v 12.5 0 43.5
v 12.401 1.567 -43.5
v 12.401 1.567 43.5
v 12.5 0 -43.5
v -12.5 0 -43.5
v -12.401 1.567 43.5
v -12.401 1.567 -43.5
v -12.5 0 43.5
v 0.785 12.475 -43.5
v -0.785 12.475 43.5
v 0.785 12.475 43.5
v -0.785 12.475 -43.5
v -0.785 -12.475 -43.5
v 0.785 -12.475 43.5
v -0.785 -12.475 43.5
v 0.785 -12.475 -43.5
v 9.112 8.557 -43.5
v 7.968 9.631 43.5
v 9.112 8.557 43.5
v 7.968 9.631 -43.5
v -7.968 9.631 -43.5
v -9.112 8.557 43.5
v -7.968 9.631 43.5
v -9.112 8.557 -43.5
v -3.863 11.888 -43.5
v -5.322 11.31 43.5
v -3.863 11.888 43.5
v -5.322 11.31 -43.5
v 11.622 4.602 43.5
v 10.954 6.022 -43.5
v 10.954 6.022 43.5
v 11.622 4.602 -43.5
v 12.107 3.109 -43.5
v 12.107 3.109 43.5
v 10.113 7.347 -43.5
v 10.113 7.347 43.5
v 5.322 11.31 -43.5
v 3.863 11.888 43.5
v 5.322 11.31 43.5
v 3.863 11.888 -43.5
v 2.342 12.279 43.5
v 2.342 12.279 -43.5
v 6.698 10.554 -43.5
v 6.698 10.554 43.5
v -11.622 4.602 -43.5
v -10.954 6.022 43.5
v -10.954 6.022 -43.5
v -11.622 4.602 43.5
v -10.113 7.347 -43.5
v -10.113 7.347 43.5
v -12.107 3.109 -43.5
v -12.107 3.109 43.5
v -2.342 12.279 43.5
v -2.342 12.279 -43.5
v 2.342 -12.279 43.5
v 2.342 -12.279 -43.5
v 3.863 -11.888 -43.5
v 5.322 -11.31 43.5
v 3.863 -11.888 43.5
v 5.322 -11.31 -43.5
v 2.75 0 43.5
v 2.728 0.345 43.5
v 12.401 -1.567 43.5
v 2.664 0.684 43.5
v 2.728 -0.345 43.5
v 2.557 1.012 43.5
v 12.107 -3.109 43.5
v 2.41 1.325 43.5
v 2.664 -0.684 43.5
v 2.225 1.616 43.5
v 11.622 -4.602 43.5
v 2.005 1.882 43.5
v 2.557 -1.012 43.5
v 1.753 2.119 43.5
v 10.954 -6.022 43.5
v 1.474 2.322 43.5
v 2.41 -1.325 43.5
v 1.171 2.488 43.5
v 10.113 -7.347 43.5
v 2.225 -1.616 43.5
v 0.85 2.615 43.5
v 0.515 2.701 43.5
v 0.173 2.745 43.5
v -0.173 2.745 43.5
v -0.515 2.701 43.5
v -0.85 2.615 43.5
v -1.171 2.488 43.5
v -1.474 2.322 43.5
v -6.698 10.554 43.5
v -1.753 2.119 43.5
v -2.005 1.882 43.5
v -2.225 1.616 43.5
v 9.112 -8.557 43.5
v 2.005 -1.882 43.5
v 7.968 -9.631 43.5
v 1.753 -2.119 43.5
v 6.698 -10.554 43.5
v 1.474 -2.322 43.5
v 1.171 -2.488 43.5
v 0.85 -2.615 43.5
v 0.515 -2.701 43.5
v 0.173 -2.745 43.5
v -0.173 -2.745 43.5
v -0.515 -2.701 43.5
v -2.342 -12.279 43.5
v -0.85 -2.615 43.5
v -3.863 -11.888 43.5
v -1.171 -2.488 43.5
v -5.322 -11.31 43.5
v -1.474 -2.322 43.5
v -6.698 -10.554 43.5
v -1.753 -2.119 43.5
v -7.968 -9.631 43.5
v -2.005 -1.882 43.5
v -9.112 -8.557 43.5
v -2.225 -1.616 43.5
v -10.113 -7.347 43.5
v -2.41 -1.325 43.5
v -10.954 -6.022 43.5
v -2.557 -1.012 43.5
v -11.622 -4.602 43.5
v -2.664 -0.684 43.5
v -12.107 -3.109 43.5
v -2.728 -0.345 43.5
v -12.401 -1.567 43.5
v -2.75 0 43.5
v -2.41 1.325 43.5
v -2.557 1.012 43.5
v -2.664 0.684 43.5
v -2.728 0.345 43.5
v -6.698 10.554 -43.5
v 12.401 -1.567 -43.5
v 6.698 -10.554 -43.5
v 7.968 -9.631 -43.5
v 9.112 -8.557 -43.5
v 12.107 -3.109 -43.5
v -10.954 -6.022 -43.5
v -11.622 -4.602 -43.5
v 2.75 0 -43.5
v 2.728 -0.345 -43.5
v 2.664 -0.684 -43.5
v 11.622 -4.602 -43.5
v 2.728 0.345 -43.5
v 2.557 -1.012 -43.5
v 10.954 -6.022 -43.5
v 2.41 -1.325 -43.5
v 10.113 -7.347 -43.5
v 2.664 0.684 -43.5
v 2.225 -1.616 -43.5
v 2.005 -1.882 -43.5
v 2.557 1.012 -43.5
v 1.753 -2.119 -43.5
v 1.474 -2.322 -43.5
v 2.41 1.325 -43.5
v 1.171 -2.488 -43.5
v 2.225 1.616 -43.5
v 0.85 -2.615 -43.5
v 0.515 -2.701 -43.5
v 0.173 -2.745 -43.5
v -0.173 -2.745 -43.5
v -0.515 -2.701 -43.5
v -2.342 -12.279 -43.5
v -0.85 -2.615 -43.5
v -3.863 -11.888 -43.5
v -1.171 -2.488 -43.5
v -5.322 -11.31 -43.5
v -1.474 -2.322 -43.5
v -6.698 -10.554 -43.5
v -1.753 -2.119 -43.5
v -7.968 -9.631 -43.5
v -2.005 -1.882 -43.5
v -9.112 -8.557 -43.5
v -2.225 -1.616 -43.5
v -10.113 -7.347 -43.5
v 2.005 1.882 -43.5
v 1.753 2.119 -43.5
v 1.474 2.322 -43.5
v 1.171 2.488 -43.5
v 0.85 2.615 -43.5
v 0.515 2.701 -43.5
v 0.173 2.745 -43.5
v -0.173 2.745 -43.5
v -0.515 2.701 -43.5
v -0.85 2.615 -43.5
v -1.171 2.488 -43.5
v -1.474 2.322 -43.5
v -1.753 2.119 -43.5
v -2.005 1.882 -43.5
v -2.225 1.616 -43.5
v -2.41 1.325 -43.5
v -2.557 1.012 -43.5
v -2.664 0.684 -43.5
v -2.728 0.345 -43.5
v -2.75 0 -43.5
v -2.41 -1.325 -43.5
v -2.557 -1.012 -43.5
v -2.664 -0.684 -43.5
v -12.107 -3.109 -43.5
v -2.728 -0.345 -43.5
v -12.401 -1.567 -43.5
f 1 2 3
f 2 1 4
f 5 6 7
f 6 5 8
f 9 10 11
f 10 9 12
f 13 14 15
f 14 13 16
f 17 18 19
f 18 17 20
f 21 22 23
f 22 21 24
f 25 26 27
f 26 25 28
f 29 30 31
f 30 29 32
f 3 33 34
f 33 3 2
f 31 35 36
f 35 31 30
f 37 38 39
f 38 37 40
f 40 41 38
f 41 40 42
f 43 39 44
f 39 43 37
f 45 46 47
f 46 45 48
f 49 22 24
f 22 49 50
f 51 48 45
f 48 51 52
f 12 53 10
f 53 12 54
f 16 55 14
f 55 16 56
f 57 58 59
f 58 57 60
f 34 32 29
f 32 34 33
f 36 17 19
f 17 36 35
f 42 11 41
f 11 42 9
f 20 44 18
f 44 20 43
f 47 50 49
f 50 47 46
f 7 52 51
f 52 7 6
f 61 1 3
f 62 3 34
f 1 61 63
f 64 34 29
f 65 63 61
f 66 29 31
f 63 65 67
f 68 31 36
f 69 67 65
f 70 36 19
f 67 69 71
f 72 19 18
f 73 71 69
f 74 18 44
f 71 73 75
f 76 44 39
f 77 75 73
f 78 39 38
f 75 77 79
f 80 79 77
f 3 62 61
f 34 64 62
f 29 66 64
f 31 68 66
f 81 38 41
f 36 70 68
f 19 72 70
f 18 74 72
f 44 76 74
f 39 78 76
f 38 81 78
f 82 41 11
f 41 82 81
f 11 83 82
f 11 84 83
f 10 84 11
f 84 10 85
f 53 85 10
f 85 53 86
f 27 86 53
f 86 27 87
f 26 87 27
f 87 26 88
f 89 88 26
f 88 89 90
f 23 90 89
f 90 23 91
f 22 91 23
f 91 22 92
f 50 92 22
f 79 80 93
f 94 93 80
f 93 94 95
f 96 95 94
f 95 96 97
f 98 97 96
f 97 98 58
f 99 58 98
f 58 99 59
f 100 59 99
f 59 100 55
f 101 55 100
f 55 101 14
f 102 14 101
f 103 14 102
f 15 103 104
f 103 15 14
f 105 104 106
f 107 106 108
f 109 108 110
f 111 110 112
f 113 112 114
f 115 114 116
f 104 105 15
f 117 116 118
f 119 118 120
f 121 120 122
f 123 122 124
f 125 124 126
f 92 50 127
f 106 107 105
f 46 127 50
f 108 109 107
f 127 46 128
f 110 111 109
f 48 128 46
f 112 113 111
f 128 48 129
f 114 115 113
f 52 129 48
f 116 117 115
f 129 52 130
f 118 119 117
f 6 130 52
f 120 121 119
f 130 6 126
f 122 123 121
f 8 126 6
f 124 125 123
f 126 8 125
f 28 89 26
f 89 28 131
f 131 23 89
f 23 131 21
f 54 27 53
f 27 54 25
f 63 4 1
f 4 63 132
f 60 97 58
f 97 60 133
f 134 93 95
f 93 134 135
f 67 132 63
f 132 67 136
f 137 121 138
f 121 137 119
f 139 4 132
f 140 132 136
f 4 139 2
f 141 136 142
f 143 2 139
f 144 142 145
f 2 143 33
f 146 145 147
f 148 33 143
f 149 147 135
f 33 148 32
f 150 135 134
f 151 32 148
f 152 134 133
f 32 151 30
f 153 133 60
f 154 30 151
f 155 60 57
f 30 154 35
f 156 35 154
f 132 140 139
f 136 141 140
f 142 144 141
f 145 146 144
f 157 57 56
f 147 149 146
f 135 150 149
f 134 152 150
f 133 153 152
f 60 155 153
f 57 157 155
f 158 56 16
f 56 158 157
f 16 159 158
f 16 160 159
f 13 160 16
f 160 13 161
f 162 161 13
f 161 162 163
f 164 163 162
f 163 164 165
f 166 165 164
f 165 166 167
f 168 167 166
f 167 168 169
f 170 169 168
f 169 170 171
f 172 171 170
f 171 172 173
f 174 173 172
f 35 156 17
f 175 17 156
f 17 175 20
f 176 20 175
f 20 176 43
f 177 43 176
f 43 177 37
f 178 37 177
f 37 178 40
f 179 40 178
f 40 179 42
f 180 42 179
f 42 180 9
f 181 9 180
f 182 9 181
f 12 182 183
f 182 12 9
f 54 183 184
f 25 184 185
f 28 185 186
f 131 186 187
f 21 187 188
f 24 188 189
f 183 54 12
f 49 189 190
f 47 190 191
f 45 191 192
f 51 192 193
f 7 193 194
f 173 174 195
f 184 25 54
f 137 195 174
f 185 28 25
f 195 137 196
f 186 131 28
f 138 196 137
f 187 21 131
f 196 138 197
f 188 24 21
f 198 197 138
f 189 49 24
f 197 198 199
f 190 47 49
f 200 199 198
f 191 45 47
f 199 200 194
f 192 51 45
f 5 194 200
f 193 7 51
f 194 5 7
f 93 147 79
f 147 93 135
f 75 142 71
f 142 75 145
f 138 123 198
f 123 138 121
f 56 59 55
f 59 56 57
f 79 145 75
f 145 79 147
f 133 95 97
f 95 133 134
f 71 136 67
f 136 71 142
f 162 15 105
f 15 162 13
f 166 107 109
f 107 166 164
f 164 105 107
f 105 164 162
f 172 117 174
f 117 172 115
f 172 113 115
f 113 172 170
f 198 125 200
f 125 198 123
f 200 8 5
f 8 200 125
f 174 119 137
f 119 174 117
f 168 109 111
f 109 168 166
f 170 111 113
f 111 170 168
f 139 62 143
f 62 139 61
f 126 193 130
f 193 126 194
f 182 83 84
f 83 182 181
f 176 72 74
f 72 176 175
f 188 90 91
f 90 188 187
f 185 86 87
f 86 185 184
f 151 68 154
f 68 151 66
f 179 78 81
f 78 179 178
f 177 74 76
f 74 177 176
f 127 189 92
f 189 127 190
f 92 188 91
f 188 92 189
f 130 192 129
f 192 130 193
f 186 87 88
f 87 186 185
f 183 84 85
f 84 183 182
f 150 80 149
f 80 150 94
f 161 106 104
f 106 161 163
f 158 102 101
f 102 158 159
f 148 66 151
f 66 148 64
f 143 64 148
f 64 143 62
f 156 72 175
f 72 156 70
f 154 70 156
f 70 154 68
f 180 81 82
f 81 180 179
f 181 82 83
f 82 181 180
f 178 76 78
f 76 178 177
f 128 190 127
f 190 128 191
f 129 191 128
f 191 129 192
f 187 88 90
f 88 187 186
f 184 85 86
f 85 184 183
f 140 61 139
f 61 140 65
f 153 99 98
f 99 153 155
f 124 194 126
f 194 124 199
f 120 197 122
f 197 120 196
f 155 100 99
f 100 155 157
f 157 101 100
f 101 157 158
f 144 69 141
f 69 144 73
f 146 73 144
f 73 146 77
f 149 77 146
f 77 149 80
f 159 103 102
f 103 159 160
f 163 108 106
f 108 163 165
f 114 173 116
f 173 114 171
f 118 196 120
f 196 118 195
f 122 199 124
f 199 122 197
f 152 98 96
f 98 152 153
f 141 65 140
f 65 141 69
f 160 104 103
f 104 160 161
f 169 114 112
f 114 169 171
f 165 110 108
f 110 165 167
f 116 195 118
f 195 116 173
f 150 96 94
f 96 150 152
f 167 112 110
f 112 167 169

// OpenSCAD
$fn = 50;


difference() {
	union() {
		translate(v = [0, 0, -43.5000000000]) {
			cylinder(h = 87, r = 12.5000000000);
		}
	}
	union() {
		translate(v = [0, 0, -100.0000000000]) {
			cylinder(h = 200, r = 2.7500000000);
		}
	}
}
